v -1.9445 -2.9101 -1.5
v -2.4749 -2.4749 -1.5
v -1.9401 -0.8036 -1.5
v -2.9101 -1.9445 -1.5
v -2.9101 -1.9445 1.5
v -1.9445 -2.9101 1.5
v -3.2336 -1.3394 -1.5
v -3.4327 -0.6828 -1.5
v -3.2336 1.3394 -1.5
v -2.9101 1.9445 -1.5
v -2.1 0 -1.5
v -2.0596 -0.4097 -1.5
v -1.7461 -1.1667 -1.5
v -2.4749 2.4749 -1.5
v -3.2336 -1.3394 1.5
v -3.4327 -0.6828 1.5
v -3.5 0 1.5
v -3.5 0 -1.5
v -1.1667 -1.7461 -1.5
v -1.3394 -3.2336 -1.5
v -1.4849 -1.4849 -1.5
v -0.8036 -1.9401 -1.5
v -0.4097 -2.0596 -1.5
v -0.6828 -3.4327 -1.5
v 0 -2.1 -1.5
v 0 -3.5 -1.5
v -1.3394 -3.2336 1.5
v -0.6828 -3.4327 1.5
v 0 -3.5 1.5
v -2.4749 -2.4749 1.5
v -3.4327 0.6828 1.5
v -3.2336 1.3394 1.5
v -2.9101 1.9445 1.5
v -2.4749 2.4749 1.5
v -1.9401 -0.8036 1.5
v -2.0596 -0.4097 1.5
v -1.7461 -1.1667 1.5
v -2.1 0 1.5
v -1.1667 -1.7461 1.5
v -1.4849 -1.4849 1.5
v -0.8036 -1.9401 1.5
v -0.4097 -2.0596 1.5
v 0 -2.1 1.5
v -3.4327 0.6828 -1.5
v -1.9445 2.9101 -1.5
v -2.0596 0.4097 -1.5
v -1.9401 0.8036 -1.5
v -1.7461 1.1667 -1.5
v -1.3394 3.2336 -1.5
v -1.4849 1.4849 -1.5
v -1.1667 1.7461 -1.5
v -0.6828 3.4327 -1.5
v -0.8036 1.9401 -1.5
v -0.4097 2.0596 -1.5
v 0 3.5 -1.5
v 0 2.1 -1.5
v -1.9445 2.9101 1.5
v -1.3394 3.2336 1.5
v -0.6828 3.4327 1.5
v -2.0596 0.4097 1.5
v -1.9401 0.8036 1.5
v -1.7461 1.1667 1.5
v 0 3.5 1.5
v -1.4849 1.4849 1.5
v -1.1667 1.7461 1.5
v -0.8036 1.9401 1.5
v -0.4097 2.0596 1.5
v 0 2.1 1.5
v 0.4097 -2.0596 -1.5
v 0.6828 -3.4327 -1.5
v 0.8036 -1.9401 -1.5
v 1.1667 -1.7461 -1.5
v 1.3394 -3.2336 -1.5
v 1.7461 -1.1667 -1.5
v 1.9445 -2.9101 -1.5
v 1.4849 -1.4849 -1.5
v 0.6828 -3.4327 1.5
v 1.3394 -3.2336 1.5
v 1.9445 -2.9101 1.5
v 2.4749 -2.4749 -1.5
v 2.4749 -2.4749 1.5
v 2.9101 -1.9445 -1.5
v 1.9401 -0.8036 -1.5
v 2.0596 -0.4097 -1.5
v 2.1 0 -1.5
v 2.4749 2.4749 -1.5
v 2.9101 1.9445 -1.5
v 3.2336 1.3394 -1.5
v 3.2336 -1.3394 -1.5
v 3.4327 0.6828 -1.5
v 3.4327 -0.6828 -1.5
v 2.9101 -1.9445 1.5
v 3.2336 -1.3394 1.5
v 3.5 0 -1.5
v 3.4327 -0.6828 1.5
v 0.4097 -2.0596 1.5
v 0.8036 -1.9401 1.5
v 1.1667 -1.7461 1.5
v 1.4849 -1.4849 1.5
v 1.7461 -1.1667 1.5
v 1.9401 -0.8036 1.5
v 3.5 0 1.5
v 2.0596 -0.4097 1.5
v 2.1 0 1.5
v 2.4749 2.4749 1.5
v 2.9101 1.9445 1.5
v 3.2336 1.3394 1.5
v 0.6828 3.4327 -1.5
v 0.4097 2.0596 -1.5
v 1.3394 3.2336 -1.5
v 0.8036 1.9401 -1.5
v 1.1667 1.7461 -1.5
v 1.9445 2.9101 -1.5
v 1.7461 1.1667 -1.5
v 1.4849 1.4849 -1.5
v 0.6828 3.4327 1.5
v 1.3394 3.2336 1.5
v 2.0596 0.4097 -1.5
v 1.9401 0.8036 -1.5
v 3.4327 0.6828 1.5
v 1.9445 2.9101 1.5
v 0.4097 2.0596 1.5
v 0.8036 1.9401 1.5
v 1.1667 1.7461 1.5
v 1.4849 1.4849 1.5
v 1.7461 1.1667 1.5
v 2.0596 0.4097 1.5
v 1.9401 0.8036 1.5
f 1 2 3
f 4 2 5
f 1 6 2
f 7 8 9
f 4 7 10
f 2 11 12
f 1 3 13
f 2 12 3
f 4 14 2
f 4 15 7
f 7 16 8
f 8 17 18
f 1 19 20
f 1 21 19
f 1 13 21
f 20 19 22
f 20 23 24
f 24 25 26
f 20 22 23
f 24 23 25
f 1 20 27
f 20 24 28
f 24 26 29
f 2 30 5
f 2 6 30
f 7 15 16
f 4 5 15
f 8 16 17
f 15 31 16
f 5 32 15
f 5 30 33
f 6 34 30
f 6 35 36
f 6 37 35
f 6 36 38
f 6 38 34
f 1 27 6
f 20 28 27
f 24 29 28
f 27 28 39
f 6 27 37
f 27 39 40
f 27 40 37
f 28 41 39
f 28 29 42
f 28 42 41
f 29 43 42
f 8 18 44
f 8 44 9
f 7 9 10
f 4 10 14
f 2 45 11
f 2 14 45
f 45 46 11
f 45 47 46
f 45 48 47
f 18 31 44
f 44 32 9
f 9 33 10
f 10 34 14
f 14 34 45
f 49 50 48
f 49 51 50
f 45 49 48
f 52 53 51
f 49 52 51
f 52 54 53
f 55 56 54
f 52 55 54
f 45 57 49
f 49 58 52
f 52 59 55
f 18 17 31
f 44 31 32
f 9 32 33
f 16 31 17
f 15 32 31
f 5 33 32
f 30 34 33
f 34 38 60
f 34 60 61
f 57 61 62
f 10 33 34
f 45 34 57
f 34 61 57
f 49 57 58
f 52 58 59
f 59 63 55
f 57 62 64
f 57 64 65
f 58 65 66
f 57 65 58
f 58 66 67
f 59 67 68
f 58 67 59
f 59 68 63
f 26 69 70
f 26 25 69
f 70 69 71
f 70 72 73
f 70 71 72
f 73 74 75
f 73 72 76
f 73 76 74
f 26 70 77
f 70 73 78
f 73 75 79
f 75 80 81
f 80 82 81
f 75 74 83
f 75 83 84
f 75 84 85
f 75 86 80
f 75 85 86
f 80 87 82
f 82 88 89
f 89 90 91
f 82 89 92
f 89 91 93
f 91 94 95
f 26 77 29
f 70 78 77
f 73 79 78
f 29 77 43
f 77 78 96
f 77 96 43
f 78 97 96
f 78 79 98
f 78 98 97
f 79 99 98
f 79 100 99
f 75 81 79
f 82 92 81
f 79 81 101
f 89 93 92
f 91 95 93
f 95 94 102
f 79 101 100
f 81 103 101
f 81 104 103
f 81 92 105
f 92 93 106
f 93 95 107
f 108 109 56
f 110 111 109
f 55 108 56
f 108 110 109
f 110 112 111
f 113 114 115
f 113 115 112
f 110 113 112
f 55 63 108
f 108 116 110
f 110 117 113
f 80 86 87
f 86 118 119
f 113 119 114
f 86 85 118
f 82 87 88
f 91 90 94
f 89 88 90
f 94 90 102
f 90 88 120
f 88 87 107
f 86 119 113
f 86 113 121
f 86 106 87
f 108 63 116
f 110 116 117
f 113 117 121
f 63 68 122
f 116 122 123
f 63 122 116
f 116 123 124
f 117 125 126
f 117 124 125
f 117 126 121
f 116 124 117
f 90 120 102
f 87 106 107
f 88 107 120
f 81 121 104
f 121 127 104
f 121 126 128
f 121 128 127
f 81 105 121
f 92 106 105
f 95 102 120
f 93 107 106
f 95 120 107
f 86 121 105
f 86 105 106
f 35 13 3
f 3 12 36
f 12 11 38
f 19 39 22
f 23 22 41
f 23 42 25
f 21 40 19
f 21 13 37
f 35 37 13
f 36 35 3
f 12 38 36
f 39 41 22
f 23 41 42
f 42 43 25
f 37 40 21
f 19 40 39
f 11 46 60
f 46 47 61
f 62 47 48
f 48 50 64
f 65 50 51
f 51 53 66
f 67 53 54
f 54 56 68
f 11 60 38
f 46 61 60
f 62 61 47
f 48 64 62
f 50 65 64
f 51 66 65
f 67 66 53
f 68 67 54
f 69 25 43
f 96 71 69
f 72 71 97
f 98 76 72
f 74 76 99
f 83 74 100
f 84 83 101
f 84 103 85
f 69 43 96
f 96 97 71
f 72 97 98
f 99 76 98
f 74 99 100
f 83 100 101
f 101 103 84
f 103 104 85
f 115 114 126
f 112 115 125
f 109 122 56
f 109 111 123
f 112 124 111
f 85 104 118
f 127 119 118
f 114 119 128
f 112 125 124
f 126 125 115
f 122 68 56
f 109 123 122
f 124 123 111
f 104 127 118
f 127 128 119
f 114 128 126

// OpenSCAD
$fn=32;
difference() {
cylinder(h=3, d=7,center=true);
cylinder(h=10, d=4.2, center=true);
}
